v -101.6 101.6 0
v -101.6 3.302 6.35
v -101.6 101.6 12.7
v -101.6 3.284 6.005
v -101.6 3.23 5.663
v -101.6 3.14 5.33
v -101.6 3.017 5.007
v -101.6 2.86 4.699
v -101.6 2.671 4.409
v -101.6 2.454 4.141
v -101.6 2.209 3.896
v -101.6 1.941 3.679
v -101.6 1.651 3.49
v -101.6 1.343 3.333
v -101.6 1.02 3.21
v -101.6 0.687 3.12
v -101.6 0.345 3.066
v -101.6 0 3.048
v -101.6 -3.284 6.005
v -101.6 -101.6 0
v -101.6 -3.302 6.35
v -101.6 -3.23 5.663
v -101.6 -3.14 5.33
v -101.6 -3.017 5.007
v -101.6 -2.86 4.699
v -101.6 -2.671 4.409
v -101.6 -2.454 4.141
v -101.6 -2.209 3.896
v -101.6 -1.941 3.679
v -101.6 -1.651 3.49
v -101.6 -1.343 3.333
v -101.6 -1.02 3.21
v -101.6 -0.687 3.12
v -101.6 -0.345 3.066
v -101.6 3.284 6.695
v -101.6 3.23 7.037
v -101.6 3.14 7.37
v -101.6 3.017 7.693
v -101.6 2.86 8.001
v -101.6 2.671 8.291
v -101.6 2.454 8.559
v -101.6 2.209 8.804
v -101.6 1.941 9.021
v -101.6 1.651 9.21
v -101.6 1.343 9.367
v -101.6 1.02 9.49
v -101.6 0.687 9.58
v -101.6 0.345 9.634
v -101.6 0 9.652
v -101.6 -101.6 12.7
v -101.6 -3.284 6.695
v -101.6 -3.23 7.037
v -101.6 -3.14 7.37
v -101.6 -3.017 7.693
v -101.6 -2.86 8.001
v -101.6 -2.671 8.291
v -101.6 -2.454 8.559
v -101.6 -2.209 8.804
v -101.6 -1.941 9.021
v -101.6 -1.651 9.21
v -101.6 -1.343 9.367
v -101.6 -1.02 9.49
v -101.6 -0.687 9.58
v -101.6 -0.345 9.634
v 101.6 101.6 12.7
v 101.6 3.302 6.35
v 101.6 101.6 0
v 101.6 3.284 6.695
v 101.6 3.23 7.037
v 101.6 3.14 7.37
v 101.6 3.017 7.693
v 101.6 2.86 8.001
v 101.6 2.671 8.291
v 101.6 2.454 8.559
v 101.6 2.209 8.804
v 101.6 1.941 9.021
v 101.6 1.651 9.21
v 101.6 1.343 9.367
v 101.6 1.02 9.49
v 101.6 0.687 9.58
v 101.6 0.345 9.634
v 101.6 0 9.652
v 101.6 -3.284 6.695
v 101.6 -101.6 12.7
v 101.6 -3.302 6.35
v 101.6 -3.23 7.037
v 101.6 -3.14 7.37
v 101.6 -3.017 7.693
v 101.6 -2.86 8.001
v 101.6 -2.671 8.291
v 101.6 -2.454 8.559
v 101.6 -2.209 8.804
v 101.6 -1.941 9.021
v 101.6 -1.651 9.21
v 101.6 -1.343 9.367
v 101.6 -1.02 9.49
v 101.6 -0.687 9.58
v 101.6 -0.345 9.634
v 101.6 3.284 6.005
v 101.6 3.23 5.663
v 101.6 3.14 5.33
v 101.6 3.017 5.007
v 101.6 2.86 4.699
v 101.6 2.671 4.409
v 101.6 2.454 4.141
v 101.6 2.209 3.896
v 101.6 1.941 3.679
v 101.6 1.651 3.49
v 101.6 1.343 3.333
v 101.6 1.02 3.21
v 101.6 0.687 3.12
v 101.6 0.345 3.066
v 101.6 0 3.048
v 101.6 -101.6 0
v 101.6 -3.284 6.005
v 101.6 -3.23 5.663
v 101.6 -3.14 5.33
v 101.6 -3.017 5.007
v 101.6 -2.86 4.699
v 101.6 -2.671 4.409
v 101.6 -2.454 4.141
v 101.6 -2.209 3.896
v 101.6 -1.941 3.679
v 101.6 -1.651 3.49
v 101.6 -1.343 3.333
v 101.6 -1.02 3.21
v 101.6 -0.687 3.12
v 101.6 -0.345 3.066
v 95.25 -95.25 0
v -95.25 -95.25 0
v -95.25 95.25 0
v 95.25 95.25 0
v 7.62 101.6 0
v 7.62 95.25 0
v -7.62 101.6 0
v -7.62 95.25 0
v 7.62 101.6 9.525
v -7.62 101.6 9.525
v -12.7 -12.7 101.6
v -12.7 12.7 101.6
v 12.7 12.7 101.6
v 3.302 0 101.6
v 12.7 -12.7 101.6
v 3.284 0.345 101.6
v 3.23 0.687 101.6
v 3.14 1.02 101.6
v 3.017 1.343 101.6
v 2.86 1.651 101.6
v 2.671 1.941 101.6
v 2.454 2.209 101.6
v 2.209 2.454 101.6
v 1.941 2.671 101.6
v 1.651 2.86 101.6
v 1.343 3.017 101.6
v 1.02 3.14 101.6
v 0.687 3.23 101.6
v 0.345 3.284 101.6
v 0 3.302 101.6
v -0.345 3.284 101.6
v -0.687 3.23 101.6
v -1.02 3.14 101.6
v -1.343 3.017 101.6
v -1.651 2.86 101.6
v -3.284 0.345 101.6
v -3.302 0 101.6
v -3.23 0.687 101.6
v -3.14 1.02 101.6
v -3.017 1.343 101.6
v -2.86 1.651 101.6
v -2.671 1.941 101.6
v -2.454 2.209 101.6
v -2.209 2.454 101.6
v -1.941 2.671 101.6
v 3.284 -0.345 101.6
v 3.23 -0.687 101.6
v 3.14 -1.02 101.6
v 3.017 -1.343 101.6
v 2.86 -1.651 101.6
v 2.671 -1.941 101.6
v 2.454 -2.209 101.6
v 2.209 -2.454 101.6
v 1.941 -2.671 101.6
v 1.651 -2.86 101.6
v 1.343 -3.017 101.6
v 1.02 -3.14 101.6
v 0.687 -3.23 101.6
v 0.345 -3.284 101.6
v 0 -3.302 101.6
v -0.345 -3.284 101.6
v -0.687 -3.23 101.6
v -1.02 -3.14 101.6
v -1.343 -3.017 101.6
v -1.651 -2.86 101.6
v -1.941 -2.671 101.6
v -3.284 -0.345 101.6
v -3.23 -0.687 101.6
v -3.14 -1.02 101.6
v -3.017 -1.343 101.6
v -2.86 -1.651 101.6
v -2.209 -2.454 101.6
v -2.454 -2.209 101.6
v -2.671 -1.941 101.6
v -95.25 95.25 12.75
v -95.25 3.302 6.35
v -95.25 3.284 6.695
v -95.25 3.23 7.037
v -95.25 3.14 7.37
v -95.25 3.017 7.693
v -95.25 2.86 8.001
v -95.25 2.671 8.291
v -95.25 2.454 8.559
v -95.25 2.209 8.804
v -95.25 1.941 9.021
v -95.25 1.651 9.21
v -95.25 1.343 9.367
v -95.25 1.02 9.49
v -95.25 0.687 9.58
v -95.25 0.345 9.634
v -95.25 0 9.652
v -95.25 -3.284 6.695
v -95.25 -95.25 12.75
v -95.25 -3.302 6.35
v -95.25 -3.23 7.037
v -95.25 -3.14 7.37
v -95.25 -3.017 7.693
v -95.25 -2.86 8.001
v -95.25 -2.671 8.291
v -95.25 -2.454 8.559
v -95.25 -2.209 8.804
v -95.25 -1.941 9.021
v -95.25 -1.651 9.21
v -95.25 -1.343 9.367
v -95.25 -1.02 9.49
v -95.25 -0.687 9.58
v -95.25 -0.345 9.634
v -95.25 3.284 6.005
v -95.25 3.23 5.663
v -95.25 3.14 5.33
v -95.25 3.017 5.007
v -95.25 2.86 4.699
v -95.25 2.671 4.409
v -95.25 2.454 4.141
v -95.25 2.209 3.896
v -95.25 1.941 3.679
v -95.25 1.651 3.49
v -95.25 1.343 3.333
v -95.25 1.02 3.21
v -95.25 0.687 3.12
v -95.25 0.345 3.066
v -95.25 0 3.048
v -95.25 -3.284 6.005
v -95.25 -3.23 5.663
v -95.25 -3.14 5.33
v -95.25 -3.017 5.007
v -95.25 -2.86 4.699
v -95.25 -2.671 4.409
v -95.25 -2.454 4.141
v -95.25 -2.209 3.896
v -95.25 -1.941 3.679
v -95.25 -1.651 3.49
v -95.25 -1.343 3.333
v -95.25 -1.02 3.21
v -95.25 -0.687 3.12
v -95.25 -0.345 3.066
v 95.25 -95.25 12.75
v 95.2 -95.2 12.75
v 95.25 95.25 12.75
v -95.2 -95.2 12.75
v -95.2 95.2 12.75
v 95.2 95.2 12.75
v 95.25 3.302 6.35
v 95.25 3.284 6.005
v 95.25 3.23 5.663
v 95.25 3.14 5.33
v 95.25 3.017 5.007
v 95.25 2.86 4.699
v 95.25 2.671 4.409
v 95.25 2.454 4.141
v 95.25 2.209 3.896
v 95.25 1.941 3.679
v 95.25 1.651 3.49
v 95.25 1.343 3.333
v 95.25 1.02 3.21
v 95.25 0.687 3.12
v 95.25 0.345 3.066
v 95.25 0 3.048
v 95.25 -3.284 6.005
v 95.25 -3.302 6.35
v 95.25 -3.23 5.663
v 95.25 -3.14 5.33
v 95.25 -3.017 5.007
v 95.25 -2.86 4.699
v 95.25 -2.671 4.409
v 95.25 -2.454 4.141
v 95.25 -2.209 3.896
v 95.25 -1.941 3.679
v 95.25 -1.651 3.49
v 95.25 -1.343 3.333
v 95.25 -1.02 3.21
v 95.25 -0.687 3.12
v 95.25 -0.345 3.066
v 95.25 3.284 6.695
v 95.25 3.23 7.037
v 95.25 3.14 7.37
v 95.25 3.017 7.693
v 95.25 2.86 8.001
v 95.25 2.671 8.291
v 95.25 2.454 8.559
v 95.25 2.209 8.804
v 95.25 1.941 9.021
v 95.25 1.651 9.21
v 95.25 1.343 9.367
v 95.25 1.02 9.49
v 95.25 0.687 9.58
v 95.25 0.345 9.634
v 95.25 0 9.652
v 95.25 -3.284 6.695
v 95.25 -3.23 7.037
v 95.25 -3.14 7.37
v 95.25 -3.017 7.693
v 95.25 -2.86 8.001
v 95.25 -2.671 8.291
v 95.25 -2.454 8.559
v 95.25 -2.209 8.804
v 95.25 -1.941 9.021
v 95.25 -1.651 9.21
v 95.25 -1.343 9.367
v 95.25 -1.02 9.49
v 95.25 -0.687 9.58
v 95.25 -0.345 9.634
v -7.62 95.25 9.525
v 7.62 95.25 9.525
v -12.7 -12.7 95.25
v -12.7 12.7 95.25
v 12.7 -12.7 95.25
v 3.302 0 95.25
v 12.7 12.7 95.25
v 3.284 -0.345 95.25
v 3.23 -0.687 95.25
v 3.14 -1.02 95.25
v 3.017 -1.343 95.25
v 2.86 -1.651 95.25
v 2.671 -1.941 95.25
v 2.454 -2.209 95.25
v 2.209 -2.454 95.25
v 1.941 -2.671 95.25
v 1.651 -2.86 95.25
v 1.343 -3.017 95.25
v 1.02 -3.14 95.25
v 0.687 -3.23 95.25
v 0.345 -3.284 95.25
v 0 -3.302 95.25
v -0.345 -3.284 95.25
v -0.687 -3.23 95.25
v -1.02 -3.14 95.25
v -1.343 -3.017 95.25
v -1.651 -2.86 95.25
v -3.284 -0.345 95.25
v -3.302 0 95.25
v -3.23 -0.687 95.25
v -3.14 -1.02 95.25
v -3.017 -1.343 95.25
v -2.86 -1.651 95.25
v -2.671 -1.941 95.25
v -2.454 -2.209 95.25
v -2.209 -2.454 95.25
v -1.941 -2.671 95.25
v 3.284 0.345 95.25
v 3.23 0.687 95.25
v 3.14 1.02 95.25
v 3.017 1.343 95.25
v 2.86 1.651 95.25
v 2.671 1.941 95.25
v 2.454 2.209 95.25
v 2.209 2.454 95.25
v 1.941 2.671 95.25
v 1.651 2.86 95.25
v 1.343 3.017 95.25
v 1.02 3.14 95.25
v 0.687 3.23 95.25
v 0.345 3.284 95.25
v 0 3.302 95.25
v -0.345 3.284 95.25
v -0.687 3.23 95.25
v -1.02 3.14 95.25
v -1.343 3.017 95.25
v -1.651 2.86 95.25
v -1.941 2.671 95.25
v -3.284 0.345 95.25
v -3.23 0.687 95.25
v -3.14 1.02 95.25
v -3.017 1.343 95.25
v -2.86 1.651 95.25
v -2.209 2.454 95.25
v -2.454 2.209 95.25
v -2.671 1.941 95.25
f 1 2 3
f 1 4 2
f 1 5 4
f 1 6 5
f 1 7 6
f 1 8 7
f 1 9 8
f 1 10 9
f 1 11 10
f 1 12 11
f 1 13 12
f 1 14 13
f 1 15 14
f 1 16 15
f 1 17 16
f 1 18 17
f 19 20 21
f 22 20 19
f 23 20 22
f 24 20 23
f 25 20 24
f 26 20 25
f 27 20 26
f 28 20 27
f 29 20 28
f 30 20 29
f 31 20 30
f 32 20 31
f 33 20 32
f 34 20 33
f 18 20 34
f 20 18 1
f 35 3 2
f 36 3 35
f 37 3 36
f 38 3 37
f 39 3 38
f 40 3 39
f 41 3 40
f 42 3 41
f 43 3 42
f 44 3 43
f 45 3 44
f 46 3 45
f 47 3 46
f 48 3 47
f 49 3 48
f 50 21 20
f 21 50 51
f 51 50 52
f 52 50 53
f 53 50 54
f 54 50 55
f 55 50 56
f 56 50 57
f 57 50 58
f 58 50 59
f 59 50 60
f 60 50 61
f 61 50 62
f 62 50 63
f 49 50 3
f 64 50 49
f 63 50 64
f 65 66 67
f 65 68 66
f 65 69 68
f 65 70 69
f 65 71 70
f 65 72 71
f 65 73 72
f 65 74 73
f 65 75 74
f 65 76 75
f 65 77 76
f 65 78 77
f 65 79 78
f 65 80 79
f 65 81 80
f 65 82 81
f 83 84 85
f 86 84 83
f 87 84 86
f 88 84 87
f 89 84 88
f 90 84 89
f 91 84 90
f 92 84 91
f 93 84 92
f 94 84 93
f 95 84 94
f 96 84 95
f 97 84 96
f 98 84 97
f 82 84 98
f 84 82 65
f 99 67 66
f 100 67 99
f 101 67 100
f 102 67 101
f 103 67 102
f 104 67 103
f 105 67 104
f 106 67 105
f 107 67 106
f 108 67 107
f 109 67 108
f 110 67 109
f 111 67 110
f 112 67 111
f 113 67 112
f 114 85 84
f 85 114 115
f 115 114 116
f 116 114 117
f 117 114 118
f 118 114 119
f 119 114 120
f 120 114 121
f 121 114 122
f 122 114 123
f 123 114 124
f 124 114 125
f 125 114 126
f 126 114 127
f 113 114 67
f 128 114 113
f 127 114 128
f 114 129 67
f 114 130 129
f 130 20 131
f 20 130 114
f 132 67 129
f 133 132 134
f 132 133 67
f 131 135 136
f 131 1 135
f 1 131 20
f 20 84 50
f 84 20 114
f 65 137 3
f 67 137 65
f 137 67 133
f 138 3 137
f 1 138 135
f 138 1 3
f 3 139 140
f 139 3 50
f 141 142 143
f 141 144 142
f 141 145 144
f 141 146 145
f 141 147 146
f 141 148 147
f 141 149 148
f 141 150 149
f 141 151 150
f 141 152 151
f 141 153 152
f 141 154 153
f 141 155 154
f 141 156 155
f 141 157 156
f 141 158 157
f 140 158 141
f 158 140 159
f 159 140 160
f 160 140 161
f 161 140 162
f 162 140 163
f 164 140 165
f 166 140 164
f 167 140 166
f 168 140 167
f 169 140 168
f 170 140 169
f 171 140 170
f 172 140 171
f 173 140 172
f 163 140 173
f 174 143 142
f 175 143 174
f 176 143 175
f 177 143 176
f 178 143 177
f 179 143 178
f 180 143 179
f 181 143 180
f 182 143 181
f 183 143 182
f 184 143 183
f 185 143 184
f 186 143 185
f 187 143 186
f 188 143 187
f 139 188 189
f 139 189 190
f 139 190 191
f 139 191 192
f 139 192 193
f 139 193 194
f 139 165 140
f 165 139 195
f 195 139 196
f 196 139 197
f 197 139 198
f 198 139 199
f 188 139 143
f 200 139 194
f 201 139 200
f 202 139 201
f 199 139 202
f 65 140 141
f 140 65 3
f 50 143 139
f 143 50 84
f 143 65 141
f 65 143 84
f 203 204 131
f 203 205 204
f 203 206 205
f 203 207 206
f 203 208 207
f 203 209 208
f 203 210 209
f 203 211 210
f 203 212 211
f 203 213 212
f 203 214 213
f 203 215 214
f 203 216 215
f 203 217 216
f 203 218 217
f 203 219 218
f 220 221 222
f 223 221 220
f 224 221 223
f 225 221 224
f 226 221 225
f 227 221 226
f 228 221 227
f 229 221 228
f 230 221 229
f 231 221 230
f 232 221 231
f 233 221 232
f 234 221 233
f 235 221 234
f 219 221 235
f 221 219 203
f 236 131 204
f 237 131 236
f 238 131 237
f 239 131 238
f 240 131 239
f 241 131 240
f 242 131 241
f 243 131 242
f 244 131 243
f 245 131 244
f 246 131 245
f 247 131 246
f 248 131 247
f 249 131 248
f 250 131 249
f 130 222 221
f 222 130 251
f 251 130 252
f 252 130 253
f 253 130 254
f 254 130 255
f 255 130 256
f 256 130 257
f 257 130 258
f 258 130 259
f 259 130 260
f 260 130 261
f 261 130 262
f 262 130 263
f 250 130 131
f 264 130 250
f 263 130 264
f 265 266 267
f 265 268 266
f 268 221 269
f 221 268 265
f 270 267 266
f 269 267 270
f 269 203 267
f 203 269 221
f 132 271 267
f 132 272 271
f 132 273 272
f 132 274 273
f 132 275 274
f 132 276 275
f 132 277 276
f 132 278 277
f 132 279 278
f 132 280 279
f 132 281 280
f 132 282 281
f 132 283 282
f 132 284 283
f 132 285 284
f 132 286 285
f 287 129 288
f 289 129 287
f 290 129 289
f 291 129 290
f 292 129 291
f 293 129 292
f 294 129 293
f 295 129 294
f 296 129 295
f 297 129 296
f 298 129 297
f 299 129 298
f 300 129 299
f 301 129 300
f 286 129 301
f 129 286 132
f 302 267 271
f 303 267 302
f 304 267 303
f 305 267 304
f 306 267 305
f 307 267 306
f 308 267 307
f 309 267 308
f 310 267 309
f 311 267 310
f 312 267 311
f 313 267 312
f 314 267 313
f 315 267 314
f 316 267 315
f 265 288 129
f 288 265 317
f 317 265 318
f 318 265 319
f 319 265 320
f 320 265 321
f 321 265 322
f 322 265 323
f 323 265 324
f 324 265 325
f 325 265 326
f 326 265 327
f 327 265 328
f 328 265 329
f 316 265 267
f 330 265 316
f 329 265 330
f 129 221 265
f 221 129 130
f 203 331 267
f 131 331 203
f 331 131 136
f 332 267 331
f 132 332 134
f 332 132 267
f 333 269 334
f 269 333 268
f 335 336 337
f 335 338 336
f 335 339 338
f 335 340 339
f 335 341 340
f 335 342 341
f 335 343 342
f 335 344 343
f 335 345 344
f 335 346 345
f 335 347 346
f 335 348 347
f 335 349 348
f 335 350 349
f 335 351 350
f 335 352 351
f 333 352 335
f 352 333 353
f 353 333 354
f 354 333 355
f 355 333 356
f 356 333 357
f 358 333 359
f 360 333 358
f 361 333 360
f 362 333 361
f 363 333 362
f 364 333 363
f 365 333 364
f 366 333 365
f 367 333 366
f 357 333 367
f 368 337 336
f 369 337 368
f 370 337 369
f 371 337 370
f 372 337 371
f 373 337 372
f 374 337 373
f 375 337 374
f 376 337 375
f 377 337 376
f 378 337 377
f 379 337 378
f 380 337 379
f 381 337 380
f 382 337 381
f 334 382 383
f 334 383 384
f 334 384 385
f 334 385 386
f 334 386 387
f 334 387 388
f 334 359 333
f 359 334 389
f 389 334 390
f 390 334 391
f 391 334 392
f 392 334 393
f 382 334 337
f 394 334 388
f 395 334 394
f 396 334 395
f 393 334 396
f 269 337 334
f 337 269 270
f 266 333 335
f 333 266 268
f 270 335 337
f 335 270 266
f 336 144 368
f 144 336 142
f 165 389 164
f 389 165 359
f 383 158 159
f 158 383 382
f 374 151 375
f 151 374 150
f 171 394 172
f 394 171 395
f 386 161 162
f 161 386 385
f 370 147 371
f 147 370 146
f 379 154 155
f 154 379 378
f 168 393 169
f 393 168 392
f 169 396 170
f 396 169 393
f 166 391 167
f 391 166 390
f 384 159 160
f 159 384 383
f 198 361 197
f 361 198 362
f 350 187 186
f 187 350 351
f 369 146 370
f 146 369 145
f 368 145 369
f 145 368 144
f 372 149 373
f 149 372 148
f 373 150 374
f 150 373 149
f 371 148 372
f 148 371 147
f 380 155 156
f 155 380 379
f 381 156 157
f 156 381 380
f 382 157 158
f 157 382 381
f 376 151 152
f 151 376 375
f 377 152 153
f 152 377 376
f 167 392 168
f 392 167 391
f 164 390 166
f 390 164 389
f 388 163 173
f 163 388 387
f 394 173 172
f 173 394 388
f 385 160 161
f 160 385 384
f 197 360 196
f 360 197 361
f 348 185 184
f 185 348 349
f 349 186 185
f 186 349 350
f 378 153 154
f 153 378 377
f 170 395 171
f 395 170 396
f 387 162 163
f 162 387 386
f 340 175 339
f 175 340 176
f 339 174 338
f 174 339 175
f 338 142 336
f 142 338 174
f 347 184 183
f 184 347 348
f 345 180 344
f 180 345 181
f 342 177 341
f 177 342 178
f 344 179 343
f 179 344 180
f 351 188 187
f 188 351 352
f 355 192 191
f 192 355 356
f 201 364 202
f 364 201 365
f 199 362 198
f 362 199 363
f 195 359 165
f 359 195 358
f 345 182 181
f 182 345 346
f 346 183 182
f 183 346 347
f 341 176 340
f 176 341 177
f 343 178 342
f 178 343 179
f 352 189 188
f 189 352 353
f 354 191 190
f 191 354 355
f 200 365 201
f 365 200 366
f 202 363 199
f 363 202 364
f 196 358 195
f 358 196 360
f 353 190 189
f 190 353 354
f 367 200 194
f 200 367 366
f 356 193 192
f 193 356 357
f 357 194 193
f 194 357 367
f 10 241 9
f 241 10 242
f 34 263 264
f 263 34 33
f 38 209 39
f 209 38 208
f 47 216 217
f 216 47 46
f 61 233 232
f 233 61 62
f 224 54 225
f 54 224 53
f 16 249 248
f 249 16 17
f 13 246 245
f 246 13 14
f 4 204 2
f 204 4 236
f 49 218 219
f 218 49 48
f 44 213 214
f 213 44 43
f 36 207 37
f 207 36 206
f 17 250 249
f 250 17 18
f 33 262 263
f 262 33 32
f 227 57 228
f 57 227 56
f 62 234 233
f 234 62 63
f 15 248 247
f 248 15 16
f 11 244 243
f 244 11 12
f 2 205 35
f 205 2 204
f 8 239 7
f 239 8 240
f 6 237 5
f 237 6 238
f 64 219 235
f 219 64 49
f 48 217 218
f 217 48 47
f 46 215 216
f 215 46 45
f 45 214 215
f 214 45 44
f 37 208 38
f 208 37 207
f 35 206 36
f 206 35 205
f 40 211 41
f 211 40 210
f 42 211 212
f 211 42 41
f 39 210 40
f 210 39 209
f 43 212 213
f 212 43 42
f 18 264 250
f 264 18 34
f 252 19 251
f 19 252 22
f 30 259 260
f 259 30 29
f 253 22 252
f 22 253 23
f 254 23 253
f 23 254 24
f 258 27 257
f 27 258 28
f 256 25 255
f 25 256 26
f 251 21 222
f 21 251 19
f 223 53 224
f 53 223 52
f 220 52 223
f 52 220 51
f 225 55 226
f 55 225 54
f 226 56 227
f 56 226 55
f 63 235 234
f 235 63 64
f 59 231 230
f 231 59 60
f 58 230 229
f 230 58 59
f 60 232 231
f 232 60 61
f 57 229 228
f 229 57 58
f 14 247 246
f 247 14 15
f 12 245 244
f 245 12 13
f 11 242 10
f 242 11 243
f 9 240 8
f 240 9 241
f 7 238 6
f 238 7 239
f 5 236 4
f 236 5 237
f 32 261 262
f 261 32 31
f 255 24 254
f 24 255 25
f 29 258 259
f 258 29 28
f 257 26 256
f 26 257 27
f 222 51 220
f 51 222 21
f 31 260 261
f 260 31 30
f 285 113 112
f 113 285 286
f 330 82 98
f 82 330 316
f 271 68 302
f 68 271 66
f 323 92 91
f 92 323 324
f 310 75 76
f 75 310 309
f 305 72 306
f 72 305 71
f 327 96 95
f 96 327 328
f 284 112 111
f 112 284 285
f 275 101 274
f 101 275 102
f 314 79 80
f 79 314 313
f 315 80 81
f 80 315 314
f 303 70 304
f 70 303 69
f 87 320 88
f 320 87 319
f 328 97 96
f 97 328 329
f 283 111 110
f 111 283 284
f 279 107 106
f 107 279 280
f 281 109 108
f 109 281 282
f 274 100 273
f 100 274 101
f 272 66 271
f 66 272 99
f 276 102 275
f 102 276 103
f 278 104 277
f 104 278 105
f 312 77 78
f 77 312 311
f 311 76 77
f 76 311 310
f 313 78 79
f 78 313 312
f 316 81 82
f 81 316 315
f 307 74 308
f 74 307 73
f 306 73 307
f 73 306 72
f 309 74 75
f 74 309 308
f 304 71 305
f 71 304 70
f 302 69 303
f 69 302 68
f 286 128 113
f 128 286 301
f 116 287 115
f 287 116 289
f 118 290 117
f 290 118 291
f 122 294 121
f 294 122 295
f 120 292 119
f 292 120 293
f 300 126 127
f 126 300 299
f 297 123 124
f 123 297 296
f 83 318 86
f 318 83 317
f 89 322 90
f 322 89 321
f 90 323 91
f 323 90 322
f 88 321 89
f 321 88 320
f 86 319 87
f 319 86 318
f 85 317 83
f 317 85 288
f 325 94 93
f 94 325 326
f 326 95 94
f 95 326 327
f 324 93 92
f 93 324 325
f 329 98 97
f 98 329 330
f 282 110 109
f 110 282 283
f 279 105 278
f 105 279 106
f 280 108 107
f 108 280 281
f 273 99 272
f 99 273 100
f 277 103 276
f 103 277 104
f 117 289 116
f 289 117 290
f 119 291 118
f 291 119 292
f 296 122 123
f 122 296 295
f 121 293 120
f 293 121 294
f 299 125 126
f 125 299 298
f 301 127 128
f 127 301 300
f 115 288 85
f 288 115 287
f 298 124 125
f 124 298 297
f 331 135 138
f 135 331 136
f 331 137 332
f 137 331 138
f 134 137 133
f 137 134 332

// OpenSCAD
// All-Seeing Eye Enclosure Design
// Unit: mm (Converted from freedom units)

/* [Global Dimensions] */
INCH = 25.4;

// Base Specifications
base_width = 8.0 * INCH;
base_height = 0.5 * INCH;
wall_thickness = 0.25 * INCH;

// Pyramid Specifications
// Slope is 45 degrees.
slope_angle = 45; 

// Top flat area for SMA connector
top_width = 1.0 * INCH; 

// Calculate pyramid height based on slope and top width
// height = run * tan(angle). Since angle is 45, tan is 1.
pyramid_height = (base_width - top_width) / 2;

// Connector Dimensions
sma_hole_diameter = 0.26 * INCH;
usb_cutout_width = 0.6 * INCH;
usb_cutout_height = 0.3 * INCH;
usb_cable_clearance = 0.5 * INCH;

/* [Rendering resolution] */
$fn = 60;

module main() {
    difference() {
        // 1. Positive Volume (The Shell)
        union() {
            // A. Base Prism
            translate([0, 0, base_height/2])
                cube([base_width, base_width, base_height], center=true);
            
            // B. Pyramid Frustum
            translate([0, 0, base_height])
                pyramid_frustum(base_width, top_width, pyramid_height);
        }

        // 2. Negative Volume (The Hollow)
        union() {
            // A. Hollow Base
            translate([0, 0, base_height/2])
                cube([base_width - 2*wall_thickness, base_width - 2*wall_thickness, base_height + 0.1], center=true);
            
            // B. Hollow Pyramid
            // FIXED in 1.2: Inner void must be shorter than outer shell to leave a roof.
            // Inner height = Outer height - wall_thickness.
            // Based on 45 degree slope logic:
            // inner_top_width = top_width (at the lower height of H-t)
            
            inner_height = pyramid_height - wall_thickness;
            inner_base_width = base_width - 2*wall_thickness;
            inner_top_width = top_width;

            translate([0, 0, base_height])
                 pyramid_frustum(inner_base_width, inner_top_width, inner_height);
        }

        // 3. Cutouts / Holes
        
        // A. Top SMA Connector (Apex)
        // Must penetrate the roof thickness.
        // Roof is located between Z = base_height + pyramid_height - wall_thickness
        //                    and Z = base_height + pyramid_height.
        translate([0, 0, base_height + pyramid_height - wall_thickness - 1]) 
            cylinder(h = wall_thickness + 2, d = sma_hole_diameter, center = false);

        // B. Left Face SMA (WiFi)
        translate([-base_width/2 + wall_thickness/2, 0, base_height/2])
            rotate([0, 90, 0])
            cylinder(h = wall_thickness + 2, d = sma_hole_diameter, center = true);

        // C. Right Face SMA (Meshtastic)
        translate([base_width/2 - wall_thickness/2, 0, base_height/2])
            rotate([0, 90, 0])
            cylinder(h = wall_thickness + 2, d = sma_hole_diameter, center = true);

        // D. Rear Face USB
        translate([0, base_width/2 - wall_thickness/2, 0])
            cube([usb_cutout_width, wall_thickness + 2, base_height*1.5], center = true);
            
    }
}

// Module to create a centered 4-sided pyramid frustum
module pyramid_frustum(base_w, top_w, h) {
    r_base = (base_w / 2) * sqrt(2);
    r_top = (top_w / 2) * sqrt(2);
    
    rotate([0, 0, 45])
        cylinder(h=h, r1=r_base, r2=r_top, $fn=4);
}

main();
